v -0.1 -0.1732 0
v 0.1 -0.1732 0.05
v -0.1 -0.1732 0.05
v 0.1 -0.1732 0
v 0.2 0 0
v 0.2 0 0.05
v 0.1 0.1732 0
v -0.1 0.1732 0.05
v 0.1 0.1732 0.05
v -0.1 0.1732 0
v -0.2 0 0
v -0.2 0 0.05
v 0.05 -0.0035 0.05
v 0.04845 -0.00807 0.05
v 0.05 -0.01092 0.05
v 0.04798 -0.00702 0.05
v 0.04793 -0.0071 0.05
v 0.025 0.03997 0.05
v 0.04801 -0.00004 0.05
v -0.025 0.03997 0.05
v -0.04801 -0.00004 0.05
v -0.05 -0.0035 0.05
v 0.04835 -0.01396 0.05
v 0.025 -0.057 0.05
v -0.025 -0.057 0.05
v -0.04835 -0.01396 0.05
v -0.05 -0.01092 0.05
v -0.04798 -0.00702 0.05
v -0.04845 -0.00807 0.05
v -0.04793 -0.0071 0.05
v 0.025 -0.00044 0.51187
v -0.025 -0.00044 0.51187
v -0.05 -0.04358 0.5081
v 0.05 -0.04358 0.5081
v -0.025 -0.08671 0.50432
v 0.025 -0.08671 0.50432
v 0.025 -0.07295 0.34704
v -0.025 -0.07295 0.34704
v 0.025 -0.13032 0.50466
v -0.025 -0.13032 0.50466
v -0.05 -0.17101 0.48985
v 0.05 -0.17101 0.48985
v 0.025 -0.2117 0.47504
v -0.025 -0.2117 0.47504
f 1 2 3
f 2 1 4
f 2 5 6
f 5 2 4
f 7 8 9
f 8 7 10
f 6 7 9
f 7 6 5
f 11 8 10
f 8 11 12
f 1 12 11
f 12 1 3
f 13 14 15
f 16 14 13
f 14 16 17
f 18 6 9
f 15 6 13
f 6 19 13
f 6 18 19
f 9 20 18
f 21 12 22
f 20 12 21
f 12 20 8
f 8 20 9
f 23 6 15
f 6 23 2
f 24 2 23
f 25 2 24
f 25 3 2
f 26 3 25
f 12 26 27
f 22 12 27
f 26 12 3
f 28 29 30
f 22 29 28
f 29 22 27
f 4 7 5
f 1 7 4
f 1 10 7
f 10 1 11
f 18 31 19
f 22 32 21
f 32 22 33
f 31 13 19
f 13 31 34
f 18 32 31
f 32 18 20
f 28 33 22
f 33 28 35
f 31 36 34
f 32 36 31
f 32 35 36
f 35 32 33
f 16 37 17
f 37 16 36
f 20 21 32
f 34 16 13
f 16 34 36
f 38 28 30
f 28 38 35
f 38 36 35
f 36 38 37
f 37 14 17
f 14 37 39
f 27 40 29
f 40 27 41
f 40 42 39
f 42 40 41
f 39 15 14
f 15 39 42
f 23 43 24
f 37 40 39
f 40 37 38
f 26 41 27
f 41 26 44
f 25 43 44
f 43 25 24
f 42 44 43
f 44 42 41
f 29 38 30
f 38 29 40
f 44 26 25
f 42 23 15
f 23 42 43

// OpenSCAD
// Main geometry
leg();

module leg() {
    $fn = 6;
    cylinder(r=0.2, h=0.05);
    translate([0, 0, 0.01]) rotate([5, 0, 0]) cylinder(d=0.1, h=0.5);
    translate([0, 0, 0.02]) rotate([20, 0, 0]) cylinder(d=0.1, h=0.5);
}
